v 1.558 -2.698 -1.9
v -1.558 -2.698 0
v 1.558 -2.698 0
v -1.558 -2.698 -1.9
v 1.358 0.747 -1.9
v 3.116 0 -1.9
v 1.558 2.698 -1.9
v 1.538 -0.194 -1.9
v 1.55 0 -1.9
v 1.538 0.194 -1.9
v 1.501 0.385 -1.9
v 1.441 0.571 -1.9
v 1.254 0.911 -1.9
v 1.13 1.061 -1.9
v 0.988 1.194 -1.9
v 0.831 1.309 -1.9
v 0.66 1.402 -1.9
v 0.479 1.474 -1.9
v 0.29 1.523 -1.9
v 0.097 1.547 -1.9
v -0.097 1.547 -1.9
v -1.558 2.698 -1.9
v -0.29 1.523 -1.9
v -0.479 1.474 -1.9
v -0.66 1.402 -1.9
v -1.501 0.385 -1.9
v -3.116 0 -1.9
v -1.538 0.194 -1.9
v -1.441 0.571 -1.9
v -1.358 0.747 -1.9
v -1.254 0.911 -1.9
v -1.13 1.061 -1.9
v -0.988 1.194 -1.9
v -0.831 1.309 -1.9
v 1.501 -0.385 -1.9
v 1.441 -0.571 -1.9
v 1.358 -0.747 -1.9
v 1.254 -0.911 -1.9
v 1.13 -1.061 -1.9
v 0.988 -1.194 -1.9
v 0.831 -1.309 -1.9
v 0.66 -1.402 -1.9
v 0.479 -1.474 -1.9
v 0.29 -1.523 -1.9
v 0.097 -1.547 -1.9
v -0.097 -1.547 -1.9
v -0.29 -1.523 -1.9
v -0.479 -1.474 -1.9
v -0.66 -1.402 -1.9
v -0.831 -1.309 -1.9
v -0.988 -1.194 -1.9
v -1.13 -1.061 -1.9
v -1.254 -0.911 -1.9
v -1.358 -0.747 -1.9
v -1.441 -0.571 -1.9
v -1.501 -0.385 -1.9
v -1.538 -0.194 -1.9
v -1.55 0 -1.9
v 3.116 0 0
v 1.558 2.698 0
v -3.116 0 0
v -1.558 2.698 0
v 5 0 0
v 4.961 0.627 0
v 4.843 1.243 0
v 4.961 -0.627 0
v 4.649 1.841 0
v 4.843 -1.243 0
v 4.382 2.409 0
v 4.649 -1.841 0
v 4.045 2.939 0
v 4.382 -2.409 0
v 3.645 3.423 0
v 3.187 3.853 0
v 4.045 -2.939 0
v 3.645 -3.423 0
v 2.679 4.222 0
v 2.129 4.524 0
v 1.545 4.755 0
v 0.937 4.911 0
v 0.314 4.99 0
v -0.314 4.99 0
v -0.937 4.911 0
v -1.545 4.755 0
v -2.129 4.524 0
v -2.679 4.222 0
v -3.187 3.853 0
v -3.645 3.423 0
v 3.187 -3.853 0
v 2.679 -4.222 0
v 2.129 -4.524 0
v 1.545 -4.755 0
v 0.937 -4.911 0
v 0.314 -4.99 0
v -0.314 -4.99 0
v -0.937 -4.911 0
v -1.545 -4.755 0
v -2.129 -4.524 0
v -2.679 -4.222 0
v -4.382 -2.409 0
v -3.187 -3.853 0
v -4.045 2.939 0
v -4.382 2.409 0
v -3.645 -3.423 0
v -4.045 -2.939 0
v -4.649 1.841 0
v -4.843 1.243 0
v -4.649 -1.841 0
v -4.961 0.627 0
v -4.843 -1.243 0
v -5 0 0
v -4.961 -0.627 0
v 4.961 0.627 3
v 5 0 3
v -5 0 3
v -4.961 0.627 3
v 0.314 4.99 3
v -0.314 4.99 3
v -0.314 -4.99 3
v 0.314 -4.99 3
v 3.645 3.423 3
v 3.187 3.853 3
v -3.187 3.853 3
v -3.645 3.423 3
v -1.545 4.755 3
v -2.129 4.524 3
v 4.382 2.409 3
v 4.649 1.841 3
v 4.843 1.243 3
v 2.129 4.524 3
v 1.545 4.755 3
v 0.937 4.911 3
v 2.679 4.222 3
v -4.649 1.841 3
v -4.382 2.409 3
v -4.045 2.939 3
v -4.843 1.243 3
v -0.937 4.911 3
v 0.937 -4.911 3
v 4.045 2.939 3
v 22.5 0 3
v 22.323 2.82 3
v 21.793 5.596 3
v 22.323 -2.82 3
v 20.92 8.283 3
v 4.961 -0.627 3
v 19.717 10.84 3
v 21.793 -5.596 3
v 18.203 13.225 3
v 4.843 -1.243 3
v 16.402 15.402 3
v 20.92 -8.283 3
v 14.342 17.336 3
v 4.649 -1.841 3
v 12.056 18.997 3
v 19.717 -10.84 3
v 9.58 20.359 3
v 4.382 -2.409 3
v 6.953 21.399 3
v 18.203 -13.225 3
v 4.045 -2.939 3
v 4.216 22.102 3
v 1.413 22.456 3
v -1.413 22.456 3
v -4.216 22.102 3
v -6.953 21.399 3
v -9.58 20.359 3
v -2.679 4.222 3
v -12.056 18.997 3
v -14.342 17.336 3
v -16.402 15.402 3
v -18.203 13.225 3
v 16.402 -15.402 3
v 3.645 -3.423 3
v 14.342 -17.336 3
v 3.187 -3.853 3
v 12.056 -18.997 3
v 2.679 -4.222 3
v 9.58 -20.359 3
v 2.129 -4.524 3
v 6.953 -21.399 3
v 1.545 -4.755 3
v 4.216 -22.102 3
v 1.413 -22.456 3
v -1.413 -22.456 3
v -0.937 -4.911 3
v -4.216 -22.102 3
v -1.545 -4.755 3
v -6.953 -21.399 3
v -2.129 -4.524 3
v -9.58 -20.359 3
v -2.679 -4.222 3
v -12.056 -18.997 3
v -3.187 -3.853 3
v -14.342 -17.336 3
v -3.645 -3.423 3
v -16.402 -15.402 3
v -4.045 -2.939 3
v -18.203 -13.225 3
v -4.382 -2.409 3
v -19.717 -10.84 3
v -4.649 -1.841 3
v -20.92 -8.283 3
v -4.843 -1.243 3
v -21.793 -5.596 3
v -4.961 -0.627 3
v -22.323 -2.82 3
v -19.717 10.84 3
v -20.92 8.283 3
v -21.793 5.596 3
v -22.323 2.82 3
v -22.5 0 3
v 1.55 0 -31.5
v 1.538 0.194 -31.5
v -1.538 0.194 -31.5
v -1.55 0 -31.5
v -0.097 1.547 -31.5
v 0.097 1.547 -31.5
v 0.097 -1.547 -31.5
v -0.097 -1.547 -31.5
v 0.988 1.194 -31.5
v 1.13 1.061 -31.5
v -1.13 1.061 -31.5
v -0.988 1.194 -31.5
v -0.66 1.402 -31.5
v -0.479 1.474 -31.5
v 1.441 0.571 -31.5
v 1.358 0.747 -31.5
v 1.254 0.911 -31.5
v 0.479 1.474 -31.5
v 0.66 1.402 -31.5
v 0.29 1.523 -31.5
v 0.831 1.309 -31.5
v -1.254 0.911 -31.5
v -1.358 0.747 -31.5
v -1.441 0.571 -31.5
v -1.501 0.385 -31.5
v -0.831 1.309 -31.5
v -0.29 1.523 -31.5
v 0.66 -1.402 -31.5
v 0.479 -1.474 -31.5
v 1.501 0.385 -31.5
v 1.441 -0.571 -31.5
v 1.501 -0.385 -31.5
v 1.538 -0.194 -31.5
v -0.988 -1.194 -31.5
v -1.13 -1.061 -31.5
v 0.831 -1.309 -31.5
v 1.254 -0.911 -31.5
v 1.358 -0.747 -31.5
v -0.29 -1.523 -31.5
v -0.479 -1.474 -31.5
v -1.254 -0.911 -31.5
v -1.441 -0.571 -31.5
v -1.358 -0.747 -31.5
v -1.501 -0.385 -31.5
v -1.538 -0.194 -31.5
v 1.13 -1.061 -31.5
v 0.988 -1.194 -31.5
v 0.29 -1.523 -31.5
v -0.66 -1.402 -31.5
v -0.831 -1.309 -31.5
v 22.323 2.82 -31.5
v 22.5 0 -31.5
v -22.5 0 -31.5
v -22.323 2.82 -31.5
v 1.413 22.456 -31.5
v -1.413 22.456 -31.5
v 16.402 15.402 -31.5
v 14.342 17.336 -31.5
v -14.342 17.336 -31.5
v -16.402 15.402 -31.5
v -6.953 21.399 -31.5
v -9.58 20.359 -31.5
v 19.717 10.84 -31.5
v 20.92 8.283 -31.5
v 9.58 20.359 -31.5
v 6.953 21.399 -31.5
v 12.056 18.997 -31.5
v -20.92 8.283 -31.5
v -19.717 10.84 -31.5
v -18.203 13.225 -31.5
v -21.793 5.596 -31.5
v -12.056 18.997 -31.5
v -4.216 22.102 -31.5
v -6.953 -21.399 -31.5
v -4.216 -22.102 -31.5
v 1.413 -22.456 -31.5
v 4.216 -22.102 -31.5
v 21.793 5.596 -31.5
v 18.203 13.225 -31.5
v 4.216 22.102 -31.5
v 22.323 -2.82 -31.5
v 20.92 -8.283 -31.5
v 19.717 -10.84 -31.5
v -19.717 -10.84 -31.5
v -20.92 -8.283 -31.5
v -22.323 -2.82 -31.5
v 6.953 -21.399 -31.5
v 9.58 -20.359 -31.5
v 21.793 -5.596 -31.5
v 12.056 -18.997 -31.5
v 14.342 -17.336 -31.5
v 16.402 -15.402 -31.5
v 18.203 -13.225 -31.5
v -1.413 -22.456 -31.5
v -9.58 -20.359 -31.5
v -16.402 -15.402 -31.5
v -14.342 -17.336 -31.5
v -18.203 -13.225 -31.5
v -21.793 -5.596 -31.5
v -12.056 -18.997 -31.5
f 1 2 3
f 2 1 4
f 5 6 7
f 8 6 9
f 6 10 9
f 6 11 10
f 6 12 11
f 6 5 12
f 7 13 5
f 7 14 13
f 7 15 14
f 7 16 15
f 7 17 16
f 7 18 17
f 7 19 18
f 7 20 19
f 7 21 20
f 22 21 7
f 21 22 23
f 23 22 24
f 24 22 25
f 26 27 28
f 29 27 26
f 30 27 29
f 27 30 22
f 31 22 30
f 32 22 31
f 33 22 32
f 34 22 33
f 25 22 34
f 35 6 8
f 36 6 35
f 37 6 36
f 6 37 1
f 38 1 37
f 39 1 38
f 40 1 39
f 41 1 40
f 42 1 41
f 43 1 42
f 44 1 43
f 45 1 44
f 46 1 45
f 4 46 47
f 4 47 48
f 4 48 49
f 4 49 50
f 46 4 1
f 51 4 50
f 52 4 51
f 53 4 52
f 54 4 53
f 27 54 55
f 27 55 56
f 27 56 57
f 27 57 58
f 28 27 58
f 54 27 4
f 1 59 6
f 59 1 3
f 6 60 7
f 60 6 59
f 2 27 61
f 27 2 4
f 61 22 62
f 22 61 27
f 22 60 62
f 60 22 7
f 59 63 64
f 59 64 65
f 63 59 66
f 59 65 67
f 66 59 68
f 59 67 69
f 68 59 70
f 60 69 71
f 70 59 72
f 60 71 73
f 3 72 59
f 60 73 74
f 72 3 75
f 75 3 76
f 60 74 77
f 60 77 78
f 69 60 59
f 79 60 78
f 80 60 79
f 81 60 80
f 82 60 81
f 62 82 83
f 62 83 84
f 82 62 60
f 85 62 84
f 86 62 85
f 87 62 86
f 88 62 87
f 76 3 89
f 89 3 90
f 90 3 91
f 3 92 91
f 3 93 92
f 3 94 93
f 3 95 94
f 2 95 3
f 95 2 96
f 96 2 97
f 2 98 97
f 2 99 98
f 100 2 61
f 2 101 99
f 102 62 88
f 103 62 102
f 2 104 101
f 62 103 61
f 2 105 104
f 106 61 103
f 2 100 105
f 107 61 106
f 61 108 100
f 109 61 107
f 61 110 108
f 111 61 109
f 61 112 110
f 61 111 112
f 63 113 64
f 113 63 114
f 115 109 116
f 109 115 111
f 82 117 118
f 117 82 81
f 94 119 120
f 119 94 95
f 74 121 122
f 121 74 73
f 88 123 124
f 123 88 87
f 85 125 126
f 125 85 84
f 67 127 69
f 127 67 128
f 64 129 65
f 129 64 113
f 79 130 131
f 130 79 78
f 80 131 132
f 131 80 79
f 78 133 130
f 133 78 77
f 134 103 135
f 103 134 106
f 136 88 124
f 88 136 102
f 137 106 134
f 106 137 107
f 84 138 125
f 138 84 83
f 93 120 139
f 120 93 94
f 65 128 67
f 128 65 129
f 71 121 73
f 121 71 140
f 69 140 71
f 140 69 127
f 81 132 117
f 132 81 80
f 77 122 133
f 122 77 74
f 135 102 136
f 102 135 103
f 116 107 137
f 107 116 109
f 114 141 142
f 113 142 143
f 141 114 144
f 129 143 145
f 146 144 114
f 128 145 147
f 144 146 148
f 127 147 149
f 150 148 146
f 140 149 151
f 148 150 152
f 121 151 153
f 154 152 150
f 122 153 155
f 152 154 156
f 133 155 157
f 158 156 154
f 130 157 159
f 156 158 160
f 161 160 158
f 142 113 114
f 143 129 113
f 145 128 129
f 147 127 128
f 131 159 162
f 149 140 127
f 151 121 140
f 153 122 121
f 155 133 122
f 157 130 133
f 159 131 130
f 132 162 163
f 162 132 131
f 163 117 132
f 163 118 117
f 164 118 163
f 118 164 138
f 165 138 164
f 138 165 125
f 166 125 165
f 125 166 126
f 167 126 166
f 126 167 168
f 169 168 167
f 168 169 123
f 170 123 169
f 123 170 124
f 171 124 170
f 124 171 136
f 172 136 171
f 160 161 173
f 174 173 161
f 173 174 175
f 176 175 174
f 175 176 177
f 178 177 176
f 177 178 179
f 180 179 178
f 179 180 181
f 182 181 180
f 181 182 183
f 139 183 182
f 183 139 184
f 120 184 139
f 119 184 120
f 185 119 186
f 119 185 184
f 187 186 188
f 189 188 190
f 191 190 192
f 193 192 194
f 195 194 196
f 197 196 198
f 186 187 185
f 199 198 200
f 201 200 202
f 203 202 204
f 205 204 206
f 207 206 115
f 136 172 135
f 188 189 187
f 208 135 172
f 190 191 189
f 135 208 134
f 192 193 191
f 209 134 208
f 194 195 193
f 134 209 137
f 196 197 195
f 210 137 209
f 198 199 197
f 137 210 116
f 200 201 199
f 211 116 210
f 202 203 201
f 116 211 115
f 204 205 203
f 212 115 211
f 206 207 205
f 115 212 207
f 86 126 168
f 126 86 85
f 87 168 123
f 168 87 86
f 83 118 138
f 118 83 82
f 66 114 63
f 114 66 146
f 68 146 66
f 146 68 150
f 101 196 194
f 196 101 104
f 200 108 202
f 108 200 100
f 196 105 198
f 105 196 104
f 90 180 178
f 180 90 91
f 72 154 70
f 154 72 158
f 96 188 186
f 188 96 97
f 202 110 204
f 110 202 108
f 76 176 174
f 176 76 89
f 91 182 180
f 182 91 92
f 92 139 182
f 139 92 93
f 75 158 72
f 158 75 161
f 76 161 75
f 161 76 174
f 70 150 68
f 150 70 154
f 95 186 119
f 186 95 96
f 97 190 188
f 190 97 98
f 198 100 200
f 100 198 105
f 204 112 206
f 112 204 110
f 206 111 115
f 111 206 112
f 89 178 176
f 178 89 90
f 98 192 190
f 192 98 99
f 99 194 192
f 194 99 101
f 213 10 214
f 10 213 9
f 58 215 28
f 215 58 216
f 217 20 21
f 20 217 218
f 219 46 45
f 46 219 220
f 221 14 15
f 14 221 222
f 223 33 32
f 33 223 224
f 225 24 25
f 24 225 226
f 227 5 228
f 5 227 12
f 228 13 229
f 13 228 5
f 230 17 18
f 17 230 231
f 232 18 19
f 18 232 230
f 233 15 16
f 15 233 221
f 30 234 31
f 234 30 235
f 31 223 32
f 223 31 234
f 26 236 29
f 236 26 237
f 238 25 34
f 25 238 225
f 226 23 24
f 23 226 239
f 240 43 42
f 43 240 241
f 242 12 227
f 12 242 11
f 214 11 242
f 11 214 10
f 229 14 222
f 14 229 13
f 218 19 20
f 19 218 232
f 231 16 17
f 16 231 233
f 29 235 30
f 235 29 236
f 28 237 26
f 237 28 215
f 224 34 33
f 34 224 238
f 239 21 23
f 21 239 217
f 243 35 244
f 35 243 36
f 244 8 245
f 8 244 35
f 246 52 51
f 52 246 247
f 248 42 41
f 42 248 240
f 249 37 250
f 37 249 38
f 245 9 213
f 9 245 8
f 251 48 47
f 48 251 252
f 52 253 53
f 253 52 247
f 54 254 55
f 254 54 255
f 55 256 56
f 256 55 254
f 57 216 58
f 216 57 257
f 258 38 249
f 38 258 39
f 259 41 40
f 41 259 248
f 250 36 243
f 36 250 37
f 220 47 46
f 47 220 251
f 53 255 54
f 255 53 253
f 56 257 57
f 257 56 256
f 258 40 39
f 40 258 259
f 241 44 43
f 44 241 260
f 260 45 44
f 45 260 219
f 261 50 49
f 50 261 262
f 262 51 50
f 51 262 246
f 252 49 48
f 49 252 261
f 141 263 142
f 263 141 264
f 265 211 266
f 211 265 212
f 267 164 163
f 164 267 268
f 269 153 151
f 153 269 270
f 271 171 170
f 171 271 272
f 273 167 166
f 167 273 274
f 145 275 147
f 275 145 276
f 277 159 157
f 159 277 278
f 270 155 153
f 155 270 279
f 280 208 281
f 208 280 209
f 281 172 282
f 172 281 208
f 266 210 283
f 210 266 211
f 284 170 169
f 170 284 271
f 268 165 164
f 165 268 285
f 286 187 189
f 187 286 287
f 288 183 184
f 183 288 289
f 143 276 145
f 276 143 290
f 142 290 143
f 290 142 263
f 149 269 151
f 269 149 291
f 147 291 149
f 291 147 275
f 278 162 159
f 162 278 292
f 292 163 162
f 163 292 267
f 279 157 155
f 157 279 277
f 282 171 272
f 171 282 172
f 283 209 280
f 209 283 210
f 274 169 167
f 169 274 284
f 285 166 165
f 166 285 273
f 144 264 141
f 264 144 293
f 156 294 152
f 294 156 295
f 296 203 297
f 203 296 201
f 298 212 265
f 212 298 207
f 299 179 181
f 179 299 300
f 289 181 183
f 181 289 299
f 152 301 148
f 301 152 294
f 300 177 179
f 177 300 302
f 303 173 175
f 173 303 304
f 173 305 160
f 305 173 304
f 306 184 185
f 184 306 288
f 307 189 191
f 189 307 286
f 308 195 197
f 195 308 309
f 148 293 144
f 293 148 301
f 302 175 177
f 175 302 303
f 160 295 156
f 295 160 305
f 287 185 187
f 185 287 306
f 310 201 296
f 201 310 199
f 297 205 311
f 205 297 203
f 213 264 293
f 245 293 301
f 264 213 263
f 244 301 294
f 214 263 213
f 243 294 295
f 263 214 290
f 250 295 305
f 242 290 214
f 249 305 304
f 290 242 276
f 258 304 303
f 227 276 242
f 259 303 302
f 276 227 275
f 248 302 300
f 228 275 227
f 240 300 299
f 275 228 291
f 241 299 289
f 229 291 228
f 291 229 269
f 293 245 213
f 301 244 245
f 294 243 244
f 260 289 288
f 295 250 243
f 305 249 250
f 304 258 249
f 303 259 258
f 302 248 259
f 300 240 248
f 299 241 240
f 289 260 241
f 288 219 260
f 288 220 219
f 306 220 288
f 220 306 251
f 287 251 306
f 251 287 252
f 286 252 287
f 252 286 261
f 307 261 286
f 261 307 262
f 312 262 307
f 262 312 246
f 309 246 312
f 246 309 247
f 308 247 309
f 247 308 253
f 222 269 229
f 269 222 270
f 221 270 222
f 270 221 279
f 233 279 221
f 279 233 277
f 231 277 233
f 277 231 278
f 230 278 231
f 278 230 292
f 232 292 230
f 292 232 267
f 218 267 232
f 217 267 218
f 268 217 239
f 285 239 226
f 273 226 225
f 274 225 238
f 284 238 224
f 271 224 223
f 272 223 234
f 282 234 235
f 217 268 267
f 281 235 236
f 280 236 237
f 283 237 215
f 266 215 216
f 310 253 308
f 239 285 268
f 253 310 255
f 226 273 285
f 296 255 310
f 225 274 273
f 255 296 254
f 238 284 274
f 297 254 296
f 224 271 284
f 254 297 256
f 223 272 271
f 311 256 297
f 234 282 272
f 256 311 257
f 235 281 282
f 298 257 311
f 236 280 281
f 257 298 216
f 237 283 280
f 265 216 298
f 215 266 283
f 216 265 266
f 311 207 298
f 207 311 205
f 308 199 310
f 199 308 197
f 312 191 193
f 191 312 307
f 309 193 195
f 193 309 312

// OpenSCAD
$fn = 50;


difference() {
	union() {
		translate(v = [0, 0, -31.5000000000]) {
			cylinder(h = 34.5000000000, r = 22.5000000000);
		}
	}
	union() {
		translate(v = [0, 0, 0]) {
			rotate(a = [0, 0, 0]) {
				difference() {
					union() {
						translate(v = [0, 0, -1.9000000000]) {
							linear_extrude(height = 1.9000000000) {
								polygon(points = [[3.1158000000, 0.0000000000], [1.5579000000, 2.6983619531], [-1.5579000000, 2.6983619531], [-3.1158000000, 0.0000000000], [-1.5579000000, -2.6983619531], [1.5579000000, -2.6983619531]]);
							}
						}
					}
					union();
				}
			}
		}
		#cylinder(h = 3, r = 5.0000000000);
		#translate(v = [0, 0, -100.0000000000]) {
			cylinder(h = 200, r = 1.5500000000);
		}
	}
}
